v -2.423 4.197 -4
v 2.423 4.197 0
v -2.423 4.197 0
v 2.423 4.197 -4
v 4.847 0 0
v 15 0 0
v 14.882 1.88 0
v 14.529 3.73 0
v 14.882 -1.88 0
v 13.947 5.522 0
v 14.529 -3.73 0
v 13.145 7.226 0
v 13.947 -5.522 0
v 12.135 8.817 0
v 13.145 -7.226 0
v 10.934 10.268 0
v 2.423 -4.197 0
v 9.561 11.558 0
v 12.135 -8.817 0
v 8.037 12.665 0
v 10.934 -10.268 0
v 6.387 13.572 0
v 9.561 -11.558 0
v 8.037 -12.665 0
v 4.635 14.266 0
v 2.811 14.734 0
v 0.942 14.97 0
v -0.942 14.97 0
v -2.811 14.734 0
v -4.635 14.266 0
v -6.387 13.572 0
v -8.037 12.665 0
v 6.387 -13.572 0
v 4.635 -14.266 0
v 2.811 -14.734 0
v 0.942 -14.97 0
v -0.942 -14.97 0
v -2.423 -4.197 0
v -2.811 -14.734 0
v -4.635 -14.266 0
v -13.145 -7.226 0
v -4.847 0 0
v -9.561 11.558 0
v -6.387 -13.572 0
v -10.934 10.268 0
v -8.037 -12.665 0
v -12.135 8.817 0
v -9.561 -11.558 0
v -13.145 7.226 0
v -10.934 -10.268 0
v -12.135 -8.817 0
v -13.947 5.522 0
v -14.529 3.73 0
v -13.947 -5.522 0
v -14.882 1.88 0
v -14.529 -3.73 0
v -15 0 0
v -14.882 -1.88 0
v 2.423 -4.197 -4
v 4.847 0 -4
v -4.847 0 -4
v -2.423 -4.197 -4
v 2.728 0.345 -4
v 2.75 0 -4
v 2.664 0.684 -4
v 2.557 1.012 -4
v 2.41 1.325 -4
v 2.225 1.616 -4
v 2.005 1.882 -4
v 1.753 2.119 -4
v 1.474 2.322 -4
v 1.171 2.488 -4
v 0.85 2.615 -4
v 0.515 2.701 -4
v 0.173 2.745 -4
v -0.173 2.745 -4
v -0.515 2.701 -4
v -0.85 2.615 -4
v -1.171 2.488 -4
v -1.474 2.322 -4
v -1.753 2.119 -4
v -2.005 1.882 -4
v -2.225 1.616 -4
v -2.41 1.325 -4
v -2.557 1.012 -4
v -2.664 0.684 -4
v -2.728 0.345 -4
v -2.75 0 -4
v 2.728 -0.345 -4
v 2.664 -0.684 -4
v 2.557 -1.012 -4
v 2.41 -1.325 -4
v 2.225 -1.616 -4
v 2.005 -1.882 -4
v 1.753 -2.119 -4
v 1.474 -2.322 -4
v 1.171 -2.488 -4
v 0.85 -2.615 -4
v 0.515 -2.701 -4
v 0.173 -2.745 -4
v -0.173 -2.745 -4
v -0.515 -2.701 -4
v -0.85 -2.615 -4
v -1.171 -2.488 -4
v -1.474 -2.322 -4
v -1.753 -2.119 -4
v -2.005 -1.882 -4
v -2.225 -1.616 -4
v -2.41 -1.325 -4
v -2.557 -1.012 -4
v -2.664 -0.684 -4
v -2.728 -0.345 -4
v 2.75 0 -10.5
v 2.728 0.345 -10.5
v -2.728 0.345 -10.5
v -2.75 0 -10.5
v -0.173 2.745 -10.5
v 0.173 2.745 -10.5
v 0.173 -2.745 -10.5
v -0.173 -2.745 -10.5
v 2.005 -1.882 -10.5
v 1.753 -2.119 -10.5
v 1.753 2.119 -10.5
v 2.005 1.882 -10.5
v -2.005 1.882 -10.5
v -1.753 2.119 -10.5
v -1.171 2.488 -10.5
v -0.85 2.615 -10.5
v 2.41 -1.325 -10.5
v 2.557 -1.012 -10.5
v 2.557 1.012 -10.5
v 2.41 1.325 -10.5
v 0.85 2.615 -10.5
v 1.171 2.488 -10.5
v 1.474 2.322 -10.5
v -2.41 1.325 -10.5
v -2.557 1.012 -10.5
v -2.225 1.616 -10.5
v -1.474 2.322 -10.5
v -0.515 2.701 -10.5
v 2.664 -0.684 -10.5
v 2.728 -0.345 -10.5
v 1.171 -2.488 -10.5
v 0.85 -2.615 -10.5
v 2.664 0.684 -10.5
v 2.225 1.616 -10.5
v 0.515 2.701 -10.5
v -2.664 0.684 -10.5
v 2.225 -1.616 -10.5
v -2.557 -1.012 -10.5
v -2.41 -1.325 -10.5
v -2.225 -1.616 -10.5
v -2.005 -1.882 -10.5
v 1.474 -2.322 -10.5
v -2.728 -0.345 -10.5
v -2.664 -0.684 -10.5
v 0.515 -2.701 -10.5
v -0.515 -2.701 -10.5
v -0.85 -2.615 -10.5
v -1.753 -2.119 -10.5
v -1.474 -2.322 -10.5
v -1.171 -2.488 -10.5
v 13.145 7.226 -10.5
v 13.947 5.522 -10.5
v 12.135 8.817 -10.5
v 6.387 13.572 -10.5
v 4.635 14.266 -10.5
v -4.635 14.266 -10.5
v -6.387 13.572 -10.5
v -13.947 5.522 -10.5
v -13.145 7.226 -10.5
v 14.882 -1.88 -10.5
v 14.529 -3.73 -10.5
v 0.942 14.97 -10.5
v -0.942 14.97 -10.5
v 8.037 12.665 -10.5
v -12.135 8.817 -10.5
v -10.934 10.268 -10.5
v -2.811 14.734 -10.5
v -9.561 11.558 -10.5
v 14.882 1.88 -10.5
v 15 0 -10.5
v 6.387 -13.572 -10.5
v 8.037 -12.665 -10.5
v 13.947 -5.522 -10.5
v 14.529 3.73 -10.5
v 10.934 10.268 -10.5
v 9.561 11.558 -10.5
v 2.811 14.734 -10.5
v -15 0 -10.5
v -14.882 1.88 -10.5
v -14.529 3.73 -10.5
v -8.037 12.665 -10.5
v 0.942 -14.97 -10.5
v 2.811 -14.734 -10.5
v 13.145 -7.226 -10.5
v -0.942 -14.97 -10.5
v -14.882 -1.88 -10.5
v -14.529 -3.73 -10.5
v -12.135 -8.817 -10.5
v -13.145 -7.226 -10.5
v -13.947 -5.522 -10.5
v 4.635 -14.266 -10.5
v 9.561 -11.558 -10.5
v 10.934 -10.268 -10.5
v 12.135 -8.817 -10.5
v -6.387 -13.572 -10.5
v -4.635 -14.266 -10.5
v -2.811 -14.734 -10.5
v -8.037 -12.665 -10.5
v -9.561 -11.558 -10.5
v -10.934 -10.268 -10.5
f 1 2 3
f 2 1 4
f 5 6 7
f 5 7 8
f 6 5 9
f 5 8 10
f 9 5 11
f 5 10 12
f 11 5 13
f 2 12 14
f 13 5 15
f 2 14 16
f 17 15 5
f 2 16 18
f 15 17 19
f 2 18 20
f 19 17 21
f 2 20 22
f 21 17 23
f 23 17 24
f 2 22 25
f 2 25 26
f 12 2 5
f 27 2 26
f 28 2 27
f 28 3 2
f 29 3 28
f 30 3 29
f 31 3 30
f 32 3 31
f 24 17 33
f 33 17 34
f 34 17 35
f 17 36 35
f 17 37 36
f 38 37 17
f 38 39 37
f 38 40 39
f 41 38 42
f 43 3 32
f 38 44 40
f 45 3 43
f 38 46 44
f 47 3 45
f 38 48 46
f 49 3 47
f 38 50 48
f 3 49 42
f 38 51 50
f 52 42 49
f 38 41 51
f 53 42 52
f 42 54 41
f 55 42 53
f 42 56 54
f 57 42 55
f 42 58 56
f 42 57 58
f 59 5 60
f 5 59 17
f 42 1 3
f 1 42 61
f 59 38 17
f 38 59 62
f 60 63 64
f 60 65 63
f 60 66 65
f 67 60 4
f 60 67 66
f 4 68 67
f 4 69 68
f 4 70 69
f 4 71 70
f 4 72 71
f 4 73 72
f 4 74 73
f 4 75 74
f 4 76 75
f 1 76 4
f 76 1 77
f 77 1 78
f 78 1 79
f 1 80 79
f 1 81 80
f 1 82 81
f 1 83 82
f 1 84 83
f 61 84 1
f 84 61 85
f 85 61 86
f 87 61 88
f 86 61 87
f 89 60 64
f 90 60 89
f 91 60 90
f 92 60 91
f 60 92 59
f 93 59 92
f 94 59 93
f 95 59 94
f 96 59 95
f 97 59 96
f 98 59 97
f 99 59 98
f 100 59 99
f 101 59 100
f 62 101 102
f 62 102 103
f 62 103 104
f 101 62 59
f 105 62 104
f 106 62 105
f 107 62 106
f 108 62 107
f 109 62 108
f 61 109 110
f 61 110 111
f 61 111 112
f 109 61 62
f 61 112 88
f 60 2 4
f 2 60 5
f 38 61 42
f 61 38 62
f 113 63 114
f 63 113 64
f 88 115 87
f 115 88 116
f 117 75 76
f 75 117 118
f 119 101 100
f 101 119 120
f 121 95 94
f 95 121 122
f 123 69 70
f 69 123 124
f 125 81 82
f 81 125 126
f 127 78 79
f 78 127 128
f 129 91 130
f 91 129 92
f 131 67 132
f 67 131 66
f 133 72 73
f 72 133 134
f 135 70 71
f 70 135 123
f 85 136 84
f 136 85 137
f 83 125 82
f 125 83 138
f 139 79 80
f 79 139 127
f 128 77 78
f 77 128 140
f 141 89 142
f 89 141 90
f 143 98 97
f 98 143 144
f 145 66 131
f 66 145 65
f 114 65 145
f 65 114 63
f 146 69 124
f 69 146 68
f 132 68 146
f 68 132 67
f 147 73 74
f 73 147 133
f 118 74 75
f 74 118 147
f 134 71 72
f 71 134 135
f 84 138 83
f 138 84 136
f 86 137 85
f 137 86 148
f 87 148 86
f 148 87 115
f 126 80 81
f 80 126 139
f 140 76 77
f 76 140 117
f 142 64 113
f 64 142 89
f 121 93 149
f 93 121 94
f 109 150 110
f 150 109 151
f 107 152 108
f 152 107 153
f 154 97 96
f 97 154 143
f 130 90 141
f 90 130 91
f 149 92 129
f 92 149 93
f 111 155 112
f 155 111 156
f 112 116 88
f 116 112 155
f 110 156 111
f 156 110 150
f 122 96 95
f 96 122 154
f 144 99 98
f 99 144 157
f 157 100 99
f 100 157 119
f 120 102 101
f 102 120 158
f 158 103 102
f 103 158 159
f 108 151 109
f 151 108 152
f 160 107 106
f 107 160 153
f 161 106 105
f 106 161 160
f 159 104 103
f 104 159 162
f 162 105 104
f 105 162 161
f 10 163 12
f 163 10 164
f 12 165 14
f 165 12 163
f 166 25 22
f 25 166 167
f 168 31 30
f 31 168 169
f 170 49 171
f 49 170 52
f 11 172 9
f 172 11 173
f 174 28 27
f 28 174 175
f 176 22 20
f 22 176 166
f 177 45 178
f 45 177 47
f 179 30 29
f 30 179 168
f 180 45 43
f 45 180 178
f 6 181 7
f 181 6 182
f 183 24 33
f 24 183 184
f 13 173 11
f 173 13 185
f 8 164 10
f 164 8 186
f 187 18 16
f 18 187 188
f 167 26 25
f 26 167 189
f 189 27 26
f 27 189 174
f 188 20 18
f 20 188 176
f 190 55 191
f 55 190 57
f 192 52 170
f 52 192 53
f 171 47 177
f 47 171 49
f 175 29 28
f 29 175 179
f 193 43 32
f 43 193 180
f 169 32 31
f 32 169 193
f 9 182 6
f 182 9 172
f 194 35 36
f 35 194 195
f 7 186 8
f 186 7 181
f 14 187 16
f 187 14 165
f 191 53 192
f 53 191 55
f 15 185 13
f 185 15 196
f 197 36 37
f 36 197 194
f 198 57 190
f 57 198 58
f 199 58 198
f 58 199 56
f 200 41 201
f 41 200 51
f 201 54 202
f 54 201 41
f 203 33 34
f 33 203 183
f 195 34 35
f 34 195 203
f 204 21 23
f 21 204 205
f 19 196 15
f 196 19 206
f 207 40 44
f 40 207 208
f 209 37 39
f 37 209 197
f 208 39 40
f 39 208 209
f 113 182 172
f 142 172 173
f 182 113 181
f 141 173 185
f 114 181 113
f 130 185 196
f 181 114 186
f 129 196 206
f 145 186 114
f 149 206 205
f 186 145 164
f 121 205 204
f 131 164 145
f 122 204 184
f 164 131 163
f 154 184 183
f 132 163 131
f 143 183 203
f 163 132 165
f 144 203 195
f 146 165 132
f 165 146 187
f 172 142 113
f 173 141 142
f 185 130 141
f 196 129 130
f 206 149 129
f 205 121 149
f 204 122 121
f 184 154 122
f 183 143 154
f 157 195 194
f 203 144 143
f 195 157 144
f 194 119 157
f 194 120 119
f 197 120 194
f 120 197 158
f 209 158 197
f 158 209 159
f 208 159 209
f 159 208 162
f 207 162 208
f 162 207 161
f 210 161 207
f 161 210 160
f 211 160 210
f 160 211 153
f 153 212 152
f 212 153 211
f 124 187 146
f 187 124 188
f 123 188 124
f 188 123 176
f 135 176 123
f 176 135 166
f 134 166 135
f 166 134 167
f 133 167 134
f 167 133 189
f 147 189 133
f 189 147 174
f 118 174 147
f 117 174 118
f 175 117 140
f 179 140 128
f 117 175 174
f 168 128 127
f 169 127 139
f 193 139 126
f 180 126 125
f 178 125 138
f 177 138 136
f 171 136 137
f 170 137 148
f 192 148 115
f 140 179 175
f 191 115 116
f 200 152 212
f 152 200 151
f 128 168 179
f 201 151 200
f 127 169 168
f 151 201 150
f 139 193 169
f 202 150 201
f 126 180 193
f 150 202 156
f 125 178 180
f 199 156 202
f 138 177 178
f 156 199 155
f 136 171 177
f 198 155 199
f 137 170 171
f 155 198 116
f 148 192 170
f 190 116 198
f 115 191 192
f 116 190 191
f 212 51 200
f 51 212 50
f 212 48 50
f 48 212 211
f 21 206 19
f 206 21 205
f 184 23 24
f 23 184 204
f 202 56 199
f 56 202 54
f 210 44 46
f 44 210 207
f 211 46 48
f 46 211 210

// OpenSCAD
$fn = 50;


difference() {
	union() {
		translate(v = [0, 0, -10.5000000000]) {
			cylinder(h = 10.5000000000, r = 15.0000000000);
		}
	}
	union() {
		translate(v = [0, 0, 0]) {
			rotate(a = [0, 0, 0]) {
				difference() {
					union() {
						translate(v = [0, 0, -4]) {
							#linear_extrude(height = 4) {
								polygon(points = [[4.8468000000, 0.0000000000], [2.4234000000, 4.1974519271], [-2.4234000000, 4.1974519271], [-4.8468000000, 0.0000000000], [-2.4234000000, -4.1974519271], [2.4234000000, -4.1974519271]]);
							}
						}
					}
					union();
				}
			}
		}
		#translate(v = [0, 0, -100.0000000000]) {
			cylinder(h = 200, r = 2.7500000000);
		}
	}
}
